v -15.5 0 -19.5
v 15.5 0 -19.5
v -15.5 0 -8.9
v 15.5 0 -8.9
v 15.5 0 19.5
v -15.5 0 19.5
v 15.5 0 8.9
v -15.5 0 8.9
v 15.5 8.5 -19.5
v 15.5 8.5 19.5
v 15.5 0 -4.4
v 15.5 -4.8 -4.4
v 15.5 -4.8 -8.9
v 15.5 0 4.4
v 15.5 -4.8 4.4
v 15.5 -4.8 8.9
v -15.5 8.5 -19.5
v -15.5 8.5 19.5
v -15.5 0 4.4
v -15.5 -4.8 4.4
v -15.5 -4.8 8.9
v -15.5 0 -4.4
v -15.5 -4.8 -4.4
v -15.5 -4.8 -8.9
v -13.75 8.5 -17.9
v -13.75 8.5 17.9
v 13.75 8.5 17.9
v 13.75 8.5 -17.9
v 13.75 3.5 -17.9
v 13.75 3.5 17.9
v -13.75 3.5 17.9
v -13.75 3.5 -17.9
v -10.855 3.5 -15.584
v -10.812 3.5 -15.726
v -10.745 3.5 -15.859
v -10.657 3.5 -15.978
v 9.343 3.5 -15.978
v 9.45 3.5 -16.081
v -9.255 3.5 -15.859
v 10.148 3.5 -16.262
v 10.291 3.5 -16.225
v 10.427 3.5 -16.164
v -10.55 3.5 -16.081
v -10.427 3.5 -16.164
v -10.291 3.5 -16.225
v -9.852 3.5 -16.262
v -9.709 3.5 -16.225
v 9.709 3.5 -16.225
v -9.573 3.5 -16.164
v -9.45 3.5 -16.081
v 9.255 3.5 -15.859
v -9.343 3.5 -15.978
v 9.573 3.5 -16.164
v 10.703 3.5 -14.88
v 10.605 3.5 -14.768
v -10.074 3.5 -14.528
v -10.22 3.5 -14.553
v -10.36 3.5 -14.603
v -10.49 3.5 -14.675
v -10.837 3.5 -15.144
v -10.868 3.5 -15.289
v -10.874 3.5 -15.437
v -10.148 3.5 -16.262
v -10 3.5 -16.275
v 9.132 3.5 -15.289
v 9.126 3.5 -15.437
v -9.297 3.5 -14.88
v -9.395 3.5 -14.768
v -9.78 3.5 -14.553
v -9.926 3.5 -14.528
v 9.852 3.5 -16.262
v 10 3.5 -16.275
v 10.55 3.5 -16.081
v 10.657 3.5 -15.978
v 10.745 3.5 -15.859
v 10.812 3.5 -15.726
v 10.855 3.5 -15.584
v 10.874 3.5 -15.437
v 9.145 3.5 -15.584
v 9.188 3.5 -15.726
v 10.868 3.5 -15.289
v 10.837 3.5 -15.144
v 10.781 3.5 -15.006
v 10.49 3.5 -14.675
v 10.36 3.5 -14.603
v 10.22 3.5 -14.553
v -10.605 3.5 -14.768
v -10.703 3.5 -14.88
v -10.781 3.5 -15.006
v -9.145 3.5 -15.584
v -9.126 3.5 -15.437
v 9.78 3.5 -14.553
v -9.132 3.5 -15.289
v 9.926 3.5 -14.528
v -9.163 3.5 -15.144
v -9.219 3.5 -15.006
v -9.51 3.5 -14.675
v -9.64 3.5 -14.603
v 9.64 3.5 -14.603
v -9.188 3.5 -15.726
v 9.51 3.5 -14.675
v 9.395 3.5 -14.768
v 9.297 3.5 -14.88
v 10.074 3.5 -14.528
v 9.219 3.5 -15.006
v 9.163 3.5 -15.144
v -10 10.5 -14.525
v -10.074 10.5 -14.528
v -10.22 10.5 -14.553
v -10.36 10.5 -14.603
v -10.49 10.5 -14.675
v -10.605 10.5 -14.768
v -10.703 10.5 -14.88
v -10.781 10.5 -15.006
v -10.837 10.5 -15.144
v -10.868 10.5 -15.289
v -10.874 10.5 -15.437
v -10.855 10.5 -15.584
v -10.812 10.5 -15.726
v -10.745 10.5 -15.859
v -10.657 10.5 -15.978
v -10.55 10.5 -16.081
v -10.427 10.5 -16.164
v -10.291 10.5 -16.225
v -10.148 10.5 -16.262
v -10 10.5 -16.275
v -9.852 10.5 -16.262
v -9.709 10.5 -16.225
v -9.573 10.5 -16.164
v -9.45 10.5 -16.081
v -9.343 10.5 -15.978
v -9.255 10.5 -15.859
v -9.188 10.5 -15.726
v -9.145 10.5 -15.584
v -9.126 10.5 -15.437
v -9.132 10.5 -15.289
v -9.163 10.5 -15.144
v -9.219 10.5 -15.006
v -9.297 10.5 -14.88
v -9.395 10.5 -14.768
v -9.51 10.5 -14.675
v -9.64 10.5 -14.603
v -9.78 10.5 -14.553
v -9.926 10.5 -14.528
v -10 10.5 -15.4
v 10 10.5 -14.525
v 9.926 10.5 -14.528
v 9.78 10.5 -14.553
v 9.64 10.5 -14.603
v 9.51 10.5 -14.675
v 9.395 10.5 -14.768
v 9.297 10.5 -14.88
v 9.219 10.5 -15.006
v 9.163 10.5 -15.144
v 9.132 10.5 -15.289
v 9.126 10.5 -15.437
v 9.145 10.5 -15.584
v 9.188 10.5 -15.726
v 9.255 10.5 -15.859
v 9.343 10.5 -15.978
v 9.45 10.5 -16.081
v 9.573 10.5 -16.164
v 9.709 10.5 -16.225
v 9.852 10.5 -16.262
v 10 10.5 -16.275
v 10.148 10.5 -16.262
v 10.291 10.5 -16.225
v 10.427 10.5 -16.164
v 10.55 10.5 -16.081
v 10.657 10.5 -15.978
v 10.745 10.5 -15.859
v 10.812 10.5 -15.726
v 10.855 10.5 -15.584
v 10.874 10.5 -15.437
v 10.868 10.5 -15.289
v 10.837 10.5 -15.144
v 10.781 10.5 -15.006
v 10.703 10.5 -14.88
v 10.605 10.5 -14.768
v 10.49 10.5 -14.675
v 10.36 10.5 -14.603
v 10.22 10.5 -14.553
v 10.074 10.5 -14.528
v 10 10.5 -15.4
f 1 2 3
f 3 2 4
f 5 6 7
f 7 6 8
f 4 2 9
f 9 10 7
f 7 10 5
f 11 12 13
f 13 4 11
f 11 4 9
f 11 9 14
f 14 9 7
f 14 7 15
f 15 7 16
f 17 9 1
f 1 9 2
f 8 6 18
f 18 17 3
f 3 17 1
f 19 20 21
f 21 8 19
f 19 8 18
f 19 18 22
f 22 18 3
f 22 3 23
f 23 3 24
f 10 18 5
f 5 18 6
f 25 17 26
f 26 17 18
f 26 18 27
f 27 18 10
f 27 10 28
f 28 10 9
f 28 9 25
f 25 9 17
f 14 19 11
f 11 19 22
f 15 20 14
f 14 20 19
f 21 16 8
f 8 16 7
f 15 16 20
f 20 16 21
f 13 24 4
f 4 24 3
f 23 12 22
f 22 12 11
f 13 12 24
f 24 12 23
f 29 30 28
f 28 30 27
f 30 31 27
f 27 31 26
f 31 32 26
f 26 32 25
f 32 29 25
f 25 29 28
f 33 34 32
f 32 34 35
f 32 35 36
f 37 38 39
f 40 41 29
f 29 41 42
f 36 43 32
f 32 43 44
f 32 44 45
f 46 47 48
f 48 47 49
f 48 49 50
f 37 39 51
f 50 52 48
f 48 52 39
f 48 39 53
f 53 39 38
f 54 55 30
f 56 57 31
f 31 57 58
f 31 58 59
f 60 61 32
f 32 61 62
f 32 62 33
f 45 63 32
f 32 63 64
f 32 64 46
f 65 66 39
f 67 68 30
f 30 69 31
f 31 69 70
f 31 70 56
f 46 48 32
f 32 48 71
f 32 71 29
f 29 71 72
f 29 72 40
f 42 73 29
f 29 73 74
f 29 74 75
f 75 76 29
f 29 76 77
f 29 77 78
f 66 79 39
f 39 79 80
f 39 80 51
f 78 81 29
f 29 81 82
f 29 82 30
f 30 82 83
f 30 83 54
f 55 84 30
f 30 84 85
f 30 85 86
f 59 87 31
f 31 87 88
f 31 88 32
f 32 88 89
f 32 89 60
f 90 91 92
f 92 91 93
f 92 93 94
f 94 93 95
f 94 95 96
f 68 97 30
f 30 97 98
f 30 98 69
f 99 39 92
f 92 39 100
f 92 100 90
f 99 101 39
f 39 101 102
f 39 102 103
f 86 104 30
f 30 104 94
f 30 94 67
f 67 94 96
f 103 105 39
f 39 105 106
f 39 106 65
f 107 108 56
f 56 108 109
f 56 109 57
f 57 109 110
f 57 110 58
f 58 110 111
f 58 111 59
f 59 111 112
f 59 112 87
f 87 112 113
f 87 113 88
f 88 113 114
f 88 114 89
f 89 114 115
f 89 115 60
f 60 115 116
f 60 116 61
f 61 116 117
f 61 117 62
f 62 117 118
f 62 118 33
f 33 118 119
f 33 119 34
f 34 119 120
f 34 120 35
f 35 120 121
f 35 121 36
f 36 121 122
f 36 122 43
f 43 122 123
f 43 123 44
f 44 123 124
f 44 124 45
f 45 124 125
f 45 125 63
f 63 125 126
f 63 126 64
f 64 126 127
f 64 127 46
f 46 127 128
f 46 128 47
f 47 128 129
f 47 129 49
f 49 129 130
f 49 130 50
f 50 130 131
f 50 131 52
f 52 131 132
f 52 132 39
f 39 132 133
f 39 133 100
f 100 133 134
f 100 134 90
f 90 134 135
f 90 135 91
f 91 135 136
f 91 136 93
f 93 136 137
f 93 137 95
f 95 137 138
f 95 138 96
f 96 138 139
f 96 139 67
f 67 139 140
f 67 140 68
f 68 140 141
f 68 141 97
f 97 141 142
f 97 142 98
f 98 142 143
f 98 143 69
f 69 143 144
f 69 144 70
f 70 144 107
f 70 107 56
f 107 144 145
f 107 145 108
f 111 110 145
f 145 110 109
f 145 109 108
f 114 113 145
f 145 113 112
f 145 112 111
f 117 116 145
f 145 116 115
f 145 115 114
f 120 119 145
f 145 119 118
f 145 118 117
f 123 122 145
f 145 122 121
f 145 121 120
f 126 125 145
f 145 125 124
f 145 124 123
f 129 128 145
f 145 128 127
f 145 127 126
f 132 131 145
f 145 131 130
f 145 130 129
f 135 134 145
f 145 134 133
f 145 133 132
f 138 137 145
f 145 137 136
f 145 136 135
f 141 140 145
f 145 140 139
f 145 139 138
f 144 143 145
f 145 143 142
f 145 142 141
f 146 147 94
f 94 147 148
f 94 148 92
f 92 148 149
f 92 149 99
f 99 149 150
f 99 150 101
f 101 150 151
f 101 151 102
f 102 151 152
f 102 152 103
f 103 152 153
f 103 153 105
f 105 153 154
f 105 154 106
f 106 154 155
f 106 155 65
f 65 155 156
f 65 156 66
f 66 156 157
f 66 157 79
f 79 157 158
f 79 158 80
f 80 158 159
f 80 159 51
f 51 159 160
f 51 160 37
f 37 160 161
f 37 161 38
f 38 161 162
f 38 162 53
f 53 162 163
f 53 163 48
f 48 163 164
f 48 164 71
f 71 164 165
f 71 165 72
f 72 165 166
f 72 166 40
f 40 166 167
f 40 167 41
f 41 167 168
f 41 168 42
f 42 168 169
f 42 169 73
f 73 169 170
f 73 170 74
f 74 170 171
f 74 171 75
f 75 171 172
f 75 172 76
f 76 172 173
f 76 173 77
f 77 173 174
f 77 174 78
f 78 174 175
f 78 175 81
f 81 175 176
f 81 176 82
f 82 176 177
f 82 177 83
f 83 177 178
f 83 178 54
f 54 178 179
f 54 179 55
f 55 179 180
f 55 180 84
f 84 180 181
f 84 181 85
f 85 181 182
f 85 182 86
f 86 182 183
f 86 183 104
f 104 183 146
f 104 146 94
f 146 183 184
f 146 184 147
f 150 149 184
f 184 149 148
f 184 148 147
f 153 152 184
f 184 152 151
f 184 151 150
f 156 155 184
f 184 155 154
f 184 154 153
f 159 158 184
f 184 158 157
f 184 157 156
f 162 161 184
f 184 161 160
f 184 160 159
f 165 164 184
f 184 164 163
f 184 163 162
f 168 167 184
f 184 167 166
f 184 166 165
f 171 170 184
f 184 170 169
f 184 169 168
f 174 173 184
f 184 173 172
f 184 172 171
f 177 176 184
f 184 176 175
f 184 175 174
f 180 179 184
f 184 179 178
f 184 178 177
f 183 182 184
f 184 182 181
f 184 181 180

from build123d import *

# Parameters (mm, degrees)
SKETCH1_W           = 31
SKETCH1_H           = 39
BOSS_EXTRUDE1_DEPTH = 8.5
SKETCH5_W           = 31
SKETCH5_H           = 4.5
BOSS_EXTRUDE3_DEPTH = 4.8
SKETCH7_W           = 27.5
SKETCH7_H           = 35.8
CUT_EXTRUDE1_DEPTH  = 5
SKETCH8_R           = 0.875
BOSS_EXTRUDE4_DEPTH = 7


with BuildPart() as part:
    # Sketch1 → Boss-Extrude1 (new body)
    with BuildSketch(Plane(origin=(0, 0, 0), x_dir=(1, 0, 0), z_dir=(0, 1, 0))):
        Rectangle(SKETCH1_W, SKETCH1_H)
    extrude(amount=BOSS_EXTRUDE1_DEPTH)

    # Sketch5 → Boss-Extrude3 (add)
    with BuildSketch(Plane.XZ):
        with Locations((0, 6.65)):
            Rectangle(SKETCH5_W, SKETCH5_H)
    boss_extrude3 = extrude(amount=BOSS_EXTRUDE3_DEPTH)

    # Mirror1: Boss-Extrude3 across plane
    add(boss_extrude3.mirror(Plane.XY))

    # Sketch7 → Cut-Extrude1 (cut)
    with BuildSketch(Plane(origin=(0, 8.5, 0), x_dir=(1, 0, 0), z_dir=(0, 1, 0))):
        Rectangle(SKETCH7_W, SKETCH7_H)
    extrude(amount=-CUT_EXTRUDE1_DEPTH, mode=Mode.SUBTRACT)

    # Sketch8 → Boss-Extrude4 (add)
    with BuildSketch(Plane(origin=(0, 3.5, 0), x_dir=(1, 0, 0), z_dir=(0, 1, 0))):
        with Locations(Location((-10, 15.4, 0), (0, 0, 90))):
            Circle(SKETCH8_R)
        with Locations(Location((10, 15.4, 0), (0, 0, 90))):
            Circle(SKETCH8_R)
    extrude(amount=BOSS_EXTRUDE4_DEPTH)


solid = part.part
